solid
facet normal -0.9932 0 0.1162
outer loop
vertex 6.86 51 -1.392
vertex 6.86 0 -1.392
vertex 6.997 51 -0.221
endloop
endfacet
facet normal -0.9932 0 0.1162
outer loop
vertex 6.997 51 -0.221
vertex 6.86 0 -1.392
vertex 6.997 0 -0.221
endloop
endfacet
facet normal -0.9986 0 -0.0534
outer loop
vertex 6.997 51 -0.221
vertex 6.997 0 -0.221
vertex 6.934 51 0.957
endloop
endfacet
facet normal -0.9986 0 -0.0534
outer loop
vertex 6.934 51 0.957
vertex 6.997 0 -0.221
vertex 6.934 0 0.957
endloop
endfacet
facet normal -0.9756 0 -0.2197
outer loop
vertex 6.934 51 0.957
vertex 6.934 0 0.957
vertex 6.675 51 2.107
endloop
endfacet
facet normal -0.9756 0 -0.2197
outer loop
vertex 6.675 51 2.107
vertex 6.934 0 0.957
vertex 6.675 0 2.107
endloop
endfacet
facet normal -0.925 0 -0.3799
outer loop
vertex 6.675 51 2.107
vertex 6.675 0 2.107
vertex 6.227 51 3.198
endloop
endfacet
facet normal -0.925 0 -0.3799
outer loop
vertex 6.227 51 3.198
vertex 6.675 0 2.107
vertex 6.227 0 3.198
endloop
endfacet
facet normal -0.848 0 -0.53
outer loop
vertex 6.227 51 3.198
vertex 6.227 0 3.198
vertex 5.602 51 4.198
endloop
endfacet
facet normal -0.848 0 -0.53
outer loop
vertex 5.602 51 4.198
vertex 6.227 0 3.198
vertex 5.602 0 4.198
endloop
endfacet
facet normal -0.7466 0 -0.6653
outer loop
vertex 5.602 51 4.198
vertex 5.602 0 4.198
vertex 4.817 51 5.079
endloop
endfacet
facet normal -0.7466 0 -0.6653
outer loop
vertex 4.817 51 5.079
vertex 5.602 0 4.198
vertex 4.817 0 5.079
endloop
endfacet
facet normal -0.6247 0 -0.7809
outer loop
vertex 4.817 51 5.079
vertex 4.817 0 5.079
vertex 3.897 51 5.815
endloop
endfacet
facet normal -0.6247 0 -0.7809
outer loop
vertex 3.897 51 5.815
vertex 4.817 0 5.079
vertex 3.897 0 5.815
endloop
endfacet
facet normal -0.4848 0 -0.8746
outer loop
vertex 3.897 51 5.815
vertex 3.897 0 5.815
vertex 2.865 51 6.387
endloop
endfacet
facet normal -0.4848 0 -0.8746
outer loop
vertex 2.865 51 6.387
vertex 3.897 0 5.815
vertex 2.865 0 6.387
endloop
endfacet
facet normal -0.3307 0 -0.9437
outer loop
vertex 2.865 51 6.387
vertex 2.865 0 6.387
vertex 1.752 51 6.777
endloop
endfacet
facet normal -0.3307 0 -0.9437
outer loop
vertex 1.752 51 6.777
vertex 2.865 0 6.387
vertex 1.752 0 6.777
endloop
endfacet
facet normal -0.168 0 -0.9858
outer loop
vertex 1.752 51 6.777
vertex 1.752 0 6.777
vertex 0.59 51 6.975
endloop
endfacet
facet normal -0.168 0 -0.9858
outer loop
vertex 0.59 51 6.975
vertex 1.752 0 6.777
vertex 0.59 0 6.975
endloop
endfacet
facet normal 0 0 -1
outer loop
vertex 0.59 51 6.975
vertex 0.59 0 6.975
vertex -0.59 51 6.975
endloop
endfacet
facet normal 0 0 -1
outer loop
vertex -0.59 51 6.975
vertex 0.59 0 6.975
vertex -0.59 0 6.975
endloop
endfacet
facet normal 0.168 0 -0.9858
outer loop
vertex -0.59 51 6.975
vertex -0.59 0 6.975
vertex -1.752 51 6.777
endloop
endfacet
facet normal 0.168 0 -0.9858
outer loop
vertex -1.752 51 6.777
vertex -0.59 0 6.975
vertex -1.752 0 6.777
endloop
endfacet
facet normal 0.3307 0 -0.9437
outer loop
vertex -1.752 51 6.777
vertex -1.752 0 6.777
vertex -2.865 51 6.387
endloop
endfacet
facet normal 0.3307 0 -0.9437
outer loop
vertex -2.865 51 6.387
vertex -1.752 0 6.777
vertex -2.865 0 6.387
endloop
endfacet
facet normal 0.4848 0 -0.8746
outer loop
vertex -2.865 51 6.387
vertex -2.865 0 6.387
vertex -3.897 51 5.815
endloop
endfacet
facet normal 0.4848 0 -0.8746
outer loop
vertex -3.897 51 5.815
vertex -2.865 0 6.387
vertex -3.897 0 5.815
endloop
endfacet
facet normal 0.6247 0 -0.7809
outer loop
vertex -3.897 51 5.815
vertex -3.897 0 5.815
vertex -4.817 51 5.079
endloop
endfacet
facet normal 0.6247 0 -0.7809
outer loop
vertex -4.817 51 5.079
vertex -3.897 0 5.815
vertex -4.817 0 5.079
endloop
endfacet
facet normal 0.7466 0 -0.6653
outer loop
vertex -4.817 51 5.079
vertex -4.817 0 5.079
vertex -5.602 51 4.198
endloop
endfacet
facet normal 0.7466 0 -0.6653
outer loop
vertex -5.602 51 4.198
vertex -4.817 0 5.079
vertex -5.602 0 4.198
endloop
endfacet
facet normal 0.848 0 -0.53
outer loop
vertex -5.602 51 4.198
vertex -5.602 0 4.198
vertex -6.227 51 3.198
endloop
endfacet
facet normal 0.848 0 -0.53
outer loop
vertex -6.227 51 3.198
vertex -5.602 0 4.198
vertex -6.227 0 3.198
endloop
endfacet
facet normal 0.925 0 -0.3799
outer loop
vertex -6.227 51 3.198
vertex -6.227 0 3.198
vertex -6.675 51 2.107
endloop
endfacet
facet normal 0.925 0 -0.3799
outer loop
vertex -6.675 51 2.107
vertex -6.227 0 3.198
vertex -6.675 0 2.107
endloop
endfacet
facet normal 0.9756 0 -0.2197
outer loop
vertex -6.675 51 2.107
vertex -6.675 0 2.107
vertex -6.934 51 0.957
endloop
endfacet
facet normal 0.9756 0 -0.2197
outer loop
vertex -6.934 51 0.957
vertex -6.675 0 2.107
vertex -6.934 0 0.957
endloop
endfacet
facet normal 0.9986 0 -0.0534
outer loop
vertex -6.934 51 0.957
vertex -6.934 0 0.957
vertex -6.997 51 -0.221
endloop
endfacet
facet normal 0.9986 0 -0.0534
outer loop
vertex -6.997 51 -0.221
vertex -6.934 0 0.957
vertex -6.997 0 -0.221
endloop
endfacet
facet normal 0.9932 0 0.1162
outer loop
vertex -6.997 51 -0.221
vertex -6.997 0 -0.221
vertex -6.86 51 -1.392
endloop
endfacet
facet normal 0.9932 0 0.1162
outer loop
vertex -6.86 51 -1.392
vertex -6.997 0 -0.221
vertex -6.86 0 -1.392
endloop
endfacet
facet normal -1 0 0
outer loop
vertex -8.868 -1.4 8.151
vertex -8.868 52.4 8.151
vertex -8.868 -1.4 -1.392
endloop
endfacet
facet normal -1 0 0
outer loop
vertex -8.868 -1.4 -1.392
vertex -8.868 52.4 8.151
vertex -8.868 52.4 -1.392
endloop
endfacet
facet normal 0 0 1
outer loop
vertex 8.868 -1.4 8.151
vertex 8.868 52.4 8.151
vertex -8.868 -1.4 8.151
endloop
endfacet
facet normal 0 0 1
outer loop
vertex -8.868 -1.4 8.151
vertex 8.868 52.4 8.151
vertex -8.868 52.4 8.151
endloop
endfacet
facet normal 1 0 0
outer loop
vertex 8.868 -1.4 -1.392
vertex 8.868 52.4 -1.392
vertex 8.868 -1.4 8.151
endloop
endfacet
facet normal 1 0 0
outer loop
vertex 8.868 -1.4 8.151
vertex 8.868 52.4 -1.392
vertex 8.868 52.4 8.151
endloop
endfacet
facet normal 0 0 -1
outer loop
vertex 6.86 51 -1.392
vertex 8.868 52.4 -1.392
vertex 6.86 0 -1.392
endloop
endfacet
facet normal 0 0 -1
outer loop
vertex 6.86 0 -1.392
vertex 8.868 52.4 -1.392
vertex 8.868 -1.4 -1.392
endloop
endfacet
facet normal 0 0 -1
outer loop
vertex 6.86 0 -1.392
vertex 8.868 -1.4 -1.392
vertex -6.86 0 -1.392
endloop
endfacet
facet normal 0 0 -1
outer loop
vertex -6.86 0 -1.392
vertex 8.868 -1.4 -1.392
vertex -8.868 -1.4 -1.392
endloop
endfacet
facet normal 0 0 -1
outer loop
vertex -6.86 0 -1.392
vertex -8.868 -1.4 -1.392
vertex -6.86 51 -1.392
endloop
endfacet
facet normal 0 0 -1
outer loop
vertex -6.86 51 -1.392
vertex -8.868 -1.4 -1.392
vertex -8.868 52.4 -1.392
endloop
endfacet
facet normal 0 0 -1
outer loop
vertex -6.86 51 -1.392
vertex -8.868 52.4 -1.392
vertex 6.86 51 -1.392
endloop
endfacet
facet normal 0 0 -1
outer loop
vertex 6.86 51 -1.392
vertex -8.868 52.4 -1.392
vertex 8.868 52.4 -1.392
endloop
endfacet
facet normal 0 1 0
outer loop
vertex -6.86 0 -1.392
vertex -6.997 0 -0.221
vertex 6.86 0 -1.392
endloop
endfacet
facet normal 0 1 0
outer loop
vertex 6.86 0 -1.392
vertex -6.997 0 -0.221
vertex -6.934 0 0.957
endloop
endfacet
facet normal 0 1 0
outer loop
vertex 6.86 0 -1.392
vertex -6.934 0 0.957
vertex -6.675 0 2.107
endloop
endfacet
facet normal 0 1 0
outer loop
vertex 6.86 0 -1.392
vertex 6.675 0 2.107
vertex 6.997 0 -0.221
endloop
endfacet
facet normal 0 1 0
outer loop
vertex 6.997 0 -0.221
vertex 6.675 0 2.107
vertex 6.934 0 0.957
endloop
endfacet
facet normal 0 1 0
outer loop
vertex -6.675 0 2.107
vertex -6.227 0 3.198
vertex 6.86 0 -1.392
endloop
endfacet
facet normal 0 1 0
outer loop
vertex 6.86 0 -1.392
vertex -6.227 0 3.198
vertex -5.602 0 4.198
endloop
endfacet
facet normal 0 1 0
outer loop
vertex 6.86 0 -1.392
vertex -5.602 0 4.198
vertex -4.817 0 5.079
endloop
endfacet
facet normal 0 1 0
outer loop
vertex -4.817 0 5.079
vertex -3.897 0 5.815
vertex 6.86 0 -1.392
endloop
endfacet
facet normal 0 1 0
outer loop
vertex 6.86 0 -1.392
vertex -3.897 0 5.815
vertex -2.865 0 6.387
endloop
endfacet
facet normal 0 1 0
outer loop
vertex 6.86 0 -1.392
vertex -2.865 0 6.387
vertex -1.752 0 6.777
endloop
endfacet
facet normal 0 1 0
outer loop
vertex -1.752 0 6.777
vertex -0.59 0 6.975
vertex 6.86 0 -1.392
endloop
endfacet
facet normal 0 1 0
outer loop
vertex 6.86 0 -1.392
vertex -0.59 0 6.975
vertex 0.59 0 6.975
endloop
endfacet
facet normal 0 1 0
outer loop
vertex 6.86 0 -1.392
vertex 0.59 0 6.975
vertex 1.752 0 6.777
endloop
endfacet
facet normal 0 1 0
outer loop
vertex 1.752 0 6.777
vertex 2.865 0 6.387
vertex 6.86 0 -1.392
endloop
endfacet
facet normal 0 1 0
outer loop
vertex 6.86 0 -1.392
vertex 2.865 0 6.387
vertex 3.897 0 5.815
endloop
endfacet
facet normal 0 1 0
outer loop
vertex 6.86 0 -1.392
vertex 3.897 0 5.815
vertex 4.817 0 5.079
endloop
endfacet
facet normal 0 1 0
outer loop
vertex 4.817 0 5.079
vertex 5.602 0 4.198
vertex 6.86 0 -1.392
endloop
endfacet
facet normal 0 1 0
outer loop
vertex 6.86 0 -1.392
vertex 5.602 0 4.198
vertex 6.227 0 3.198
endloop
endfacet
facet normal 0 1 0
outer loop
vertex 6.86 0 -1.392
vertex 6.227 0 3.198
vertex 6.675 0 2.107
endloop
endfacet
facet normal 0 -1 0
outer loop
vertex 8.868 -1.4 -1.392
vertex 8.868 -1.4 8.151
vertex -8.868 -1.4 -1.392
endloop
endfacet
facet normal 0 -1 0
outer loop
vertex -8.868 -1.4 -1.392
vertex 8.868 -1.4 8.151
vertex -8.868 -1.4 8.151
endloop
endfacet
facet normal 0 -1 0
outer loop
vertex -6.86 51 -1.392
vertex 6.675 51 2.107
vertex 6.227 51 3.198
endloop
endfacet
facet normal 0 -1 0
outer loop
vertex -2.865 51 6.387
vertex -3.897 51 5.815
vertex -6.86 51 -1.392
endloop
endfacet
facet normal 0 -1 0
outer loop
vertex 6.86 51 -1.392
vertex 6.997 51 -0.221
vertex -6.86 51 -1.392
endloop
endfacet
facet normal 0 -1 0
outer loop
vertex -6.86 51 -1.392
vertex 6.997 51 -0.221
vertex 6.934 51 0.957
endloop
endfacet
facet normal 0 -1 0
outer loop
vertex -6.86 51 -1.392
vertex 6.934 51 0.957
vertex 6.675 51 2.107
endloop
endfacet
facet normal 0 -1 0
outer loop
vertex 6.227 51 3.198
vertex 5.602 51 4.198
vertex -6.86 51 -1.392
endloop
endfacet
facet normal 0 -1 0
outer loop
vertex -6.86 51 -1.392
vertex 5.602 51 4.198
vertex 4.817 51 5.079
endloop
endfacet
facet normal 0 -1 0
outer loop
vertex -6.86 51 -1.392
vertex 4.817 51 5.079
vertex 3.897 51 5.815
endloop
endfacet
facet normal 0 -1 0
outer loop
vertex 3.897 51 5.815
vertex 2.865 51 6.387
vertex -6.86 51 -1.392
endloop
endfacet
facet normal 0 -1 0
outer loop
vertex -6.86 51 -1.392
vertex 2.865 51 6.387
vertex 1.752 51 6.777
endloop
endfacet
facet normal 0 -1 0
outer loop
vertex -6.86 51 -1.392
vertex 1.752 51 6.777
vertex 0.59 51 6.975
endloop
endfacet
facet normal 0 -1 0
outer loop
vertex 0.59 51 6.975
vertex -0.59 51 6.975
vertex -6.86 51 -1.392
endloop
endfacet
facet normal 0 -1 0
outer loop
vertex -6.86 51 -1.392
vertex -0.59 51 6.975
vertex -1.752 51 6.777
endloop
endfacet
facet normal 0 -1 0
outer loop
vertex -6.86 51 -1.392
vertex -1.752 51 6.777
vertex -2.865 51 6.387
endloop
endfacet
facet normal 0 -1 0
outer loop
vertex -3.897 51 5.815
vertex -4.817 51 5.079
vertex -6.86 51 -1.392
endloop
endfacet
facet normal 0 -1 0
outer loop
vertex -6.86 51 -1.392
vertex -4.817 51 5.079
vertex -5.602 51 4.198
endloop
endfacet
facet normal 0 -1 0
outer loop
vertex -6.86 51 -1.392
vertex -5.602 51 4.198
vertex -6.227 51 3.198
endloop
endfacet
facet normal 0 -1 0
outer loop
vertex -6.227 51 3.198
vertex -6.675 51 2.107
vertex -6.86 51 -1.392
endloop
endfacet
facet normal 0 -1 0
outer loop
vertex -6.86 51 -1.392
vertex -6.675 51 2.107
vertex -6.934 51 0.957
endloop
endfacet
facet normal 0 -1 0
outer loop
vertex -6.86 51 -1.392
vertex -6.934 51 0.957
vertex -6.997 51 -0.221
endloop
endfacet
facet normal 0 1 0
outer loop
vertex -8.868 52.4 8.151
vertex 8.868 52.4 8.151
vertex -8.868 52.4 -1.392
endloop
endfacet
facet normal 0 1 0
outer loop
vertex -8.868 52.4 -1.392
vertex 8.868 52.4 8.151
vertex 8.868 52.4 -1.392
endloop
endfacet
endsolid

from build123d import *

# Parameters (mm, degrees)
BOSS_EXTRUDE1_DEPTH = 51
SKETCH2_W           = 17.735009552
SKETCH2_H           = 9.543683463
BOSS_EXTRUDE2_DEPTH = 1.4
BOSS_EXTRUDE3_START = -51
SKETCH2_2_W         = 17.735009552
SKETCH2_2_H         = 9.543683463
BOSS_EXTRUDE3_DEPTH = 1.4


with BuildPart() as part:
    # Sketch1 → Boss-Extrude1 (new body)
    with BuildSketch(Plane(origin=(0, 0, 0), x_dir=(1, 0, 0), z_dir=(0, 1, 0))):
        with BuildLine():
            Line((-6.860118192, 1.392400227), (-8.867504776, 1.392400227))
            Line((-8.867504776, 1.392400227), (-8.867504776, -8.151283236))
            Line((-8.867504776, -8.151283236), (8.867504776, -8.151283236))
            Line((8.867504776, -8.151283236), (8.867504776, 1.392400227))
            Line((8.867504776, 1.392400227), (6.860118192, 1.392400227))
            ThreePointArc((6.860118192, 1.392400227), (0, -7), (-6.860118192, 1.392400227))
        make_face()
    extrude(amount=BOSS_EXTRUDE1_DEPTH)

    # Sketch2 → Boss-Extrude2 (add)
    with BuildSketch(Plane.XZ):
        with Locations((0, 3.379441505)):
            Rectangle(SKETCH2_W, SKETCH2_H)
    extrude(amount=BOSS_EXTRUDE2_DEPTH)

    # Sketch2<2> → Boss-Extrude3 (add)
    with BuildSketch(Plane.XZ.offset(BOSS_EXTRUDE3_START)):
        with Locations((0, 3.379441505)):
            Rectangle(SKETCH2_2_W, SKETCH2_2_H)
    extrude(amount=-BOSS_EXTRUDE3_DEPTH)


solid = part.part
